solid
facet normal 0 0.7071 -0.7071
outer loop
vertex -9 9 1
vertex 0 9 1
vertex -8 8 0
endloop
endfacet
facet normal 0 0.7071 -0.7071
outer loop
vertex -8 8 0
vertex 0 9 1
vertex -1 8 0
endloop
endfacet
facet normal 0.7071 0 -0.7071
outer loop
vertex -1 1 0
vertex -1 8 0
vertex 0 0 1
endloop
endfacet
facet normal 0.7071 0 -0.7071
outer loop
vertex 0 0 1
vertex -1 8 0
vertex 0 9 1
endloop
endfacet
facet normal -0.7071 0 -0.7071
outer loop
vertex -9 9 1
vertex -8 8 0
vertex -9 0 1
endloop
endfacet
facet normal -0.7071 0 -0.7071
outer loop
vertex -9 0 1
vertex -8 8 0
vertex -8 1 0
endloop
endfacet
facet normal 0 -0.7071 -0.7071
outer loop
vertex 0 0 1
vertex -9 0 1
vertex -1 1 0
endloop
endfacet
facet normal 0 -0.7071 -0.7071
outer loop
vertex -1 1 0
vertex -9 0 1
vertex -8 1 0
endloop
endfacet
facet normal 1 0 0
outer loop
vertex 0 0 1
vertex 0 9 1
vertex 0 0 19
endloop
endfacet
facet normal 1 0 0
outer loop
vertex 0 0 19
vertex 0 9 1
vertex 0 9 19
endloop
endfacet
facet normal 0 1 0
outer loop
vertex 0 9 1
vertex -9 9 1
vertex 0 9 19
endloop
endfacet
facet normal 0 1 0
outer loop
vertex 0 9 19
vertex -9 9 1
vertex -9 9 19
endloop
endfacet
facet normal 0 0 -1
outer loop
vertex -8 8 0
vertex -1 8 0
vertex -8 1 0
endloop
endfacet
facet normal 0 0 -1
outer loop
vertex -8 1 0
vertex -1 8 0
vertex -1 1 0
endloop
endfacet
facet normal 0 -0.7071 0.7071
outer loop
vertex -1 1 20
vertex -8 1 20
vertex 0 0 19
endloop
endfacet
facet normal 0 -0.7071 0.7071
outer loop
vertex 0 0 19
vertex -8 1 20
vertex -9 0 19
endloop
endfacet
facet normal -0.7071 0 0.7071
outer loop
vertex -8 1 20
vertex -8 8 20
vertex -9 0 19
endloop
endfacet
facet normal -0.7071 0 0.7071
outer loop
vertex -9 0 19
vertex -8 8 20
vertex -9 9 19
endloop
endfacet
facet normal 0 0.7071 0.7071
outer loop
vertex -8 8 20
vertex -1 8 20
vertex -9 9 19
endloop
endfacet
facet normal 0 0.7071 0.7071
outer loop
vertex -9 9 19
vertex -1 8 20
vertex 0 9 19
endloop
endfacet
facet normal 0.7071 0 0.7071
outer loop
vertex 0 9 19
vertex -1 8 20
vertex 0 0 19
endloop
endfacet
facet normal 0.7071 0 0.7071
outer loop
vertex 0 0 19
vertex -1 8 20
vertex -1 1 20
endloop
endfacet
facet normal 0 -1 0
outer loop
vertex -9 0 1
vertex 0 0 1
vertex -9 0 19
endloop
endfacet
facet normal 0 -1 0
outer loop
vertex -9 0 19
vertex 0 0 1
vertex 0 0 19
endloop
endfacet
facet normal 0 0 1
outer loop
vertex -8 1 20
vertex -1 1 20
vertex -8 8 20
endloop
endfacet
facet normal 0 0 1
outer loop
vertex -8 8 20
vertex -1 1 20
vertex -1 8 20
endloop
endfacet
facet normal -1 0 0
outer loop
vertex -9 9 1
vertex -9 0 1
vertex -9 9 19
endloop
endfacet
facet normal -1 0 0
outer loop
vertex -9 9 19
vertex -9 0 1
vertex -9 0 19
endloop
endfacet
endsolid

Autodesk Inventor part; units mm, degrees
ref_plane "YZ Plane" through (0, 0, 0) normal (1, 0, 0) x (0, 1, 0)
ref_plane "XZ Plane" through (0, 0, 0) normal (0, 1, 0) x (-1, 0, 0)
ref_plane "XY Plane" through (0, 0, 0) normal (0, 0, 1) x (1, 0, 0)
sketch "Sketch1" plane through (0, 0, 0) normal (0, 0, 1) x (1, 0, 0)
  line L0 (0, 0) -> (-9, 0)
  line L1 (-9, 0) -> (-9, 9)
  line L2 (-9, 9) -> (0, 9)
  line L3 (0, 9) -> (0, 0)
  dimension "d0" = 9
  dimension "d1" = 9
extrude "Extrusion1" add sketch "Sketch1" along normal blind 20
chamfer "Chamfer1" distance 1 angle 45 4 edges at (-4.5, 9, 20) (0, 4.5, 20) (-4.5, 0, 20) (-9, 4.5, 20)
chamfer "Chamfer2" distance 1 angle 45 4 edges at (-4.5, 9, 0) (0, 4.5, 0) (-4.5, 0, 0) (-9, 4.5, 0)
properties part number "Pillar_TestFit_V1"
